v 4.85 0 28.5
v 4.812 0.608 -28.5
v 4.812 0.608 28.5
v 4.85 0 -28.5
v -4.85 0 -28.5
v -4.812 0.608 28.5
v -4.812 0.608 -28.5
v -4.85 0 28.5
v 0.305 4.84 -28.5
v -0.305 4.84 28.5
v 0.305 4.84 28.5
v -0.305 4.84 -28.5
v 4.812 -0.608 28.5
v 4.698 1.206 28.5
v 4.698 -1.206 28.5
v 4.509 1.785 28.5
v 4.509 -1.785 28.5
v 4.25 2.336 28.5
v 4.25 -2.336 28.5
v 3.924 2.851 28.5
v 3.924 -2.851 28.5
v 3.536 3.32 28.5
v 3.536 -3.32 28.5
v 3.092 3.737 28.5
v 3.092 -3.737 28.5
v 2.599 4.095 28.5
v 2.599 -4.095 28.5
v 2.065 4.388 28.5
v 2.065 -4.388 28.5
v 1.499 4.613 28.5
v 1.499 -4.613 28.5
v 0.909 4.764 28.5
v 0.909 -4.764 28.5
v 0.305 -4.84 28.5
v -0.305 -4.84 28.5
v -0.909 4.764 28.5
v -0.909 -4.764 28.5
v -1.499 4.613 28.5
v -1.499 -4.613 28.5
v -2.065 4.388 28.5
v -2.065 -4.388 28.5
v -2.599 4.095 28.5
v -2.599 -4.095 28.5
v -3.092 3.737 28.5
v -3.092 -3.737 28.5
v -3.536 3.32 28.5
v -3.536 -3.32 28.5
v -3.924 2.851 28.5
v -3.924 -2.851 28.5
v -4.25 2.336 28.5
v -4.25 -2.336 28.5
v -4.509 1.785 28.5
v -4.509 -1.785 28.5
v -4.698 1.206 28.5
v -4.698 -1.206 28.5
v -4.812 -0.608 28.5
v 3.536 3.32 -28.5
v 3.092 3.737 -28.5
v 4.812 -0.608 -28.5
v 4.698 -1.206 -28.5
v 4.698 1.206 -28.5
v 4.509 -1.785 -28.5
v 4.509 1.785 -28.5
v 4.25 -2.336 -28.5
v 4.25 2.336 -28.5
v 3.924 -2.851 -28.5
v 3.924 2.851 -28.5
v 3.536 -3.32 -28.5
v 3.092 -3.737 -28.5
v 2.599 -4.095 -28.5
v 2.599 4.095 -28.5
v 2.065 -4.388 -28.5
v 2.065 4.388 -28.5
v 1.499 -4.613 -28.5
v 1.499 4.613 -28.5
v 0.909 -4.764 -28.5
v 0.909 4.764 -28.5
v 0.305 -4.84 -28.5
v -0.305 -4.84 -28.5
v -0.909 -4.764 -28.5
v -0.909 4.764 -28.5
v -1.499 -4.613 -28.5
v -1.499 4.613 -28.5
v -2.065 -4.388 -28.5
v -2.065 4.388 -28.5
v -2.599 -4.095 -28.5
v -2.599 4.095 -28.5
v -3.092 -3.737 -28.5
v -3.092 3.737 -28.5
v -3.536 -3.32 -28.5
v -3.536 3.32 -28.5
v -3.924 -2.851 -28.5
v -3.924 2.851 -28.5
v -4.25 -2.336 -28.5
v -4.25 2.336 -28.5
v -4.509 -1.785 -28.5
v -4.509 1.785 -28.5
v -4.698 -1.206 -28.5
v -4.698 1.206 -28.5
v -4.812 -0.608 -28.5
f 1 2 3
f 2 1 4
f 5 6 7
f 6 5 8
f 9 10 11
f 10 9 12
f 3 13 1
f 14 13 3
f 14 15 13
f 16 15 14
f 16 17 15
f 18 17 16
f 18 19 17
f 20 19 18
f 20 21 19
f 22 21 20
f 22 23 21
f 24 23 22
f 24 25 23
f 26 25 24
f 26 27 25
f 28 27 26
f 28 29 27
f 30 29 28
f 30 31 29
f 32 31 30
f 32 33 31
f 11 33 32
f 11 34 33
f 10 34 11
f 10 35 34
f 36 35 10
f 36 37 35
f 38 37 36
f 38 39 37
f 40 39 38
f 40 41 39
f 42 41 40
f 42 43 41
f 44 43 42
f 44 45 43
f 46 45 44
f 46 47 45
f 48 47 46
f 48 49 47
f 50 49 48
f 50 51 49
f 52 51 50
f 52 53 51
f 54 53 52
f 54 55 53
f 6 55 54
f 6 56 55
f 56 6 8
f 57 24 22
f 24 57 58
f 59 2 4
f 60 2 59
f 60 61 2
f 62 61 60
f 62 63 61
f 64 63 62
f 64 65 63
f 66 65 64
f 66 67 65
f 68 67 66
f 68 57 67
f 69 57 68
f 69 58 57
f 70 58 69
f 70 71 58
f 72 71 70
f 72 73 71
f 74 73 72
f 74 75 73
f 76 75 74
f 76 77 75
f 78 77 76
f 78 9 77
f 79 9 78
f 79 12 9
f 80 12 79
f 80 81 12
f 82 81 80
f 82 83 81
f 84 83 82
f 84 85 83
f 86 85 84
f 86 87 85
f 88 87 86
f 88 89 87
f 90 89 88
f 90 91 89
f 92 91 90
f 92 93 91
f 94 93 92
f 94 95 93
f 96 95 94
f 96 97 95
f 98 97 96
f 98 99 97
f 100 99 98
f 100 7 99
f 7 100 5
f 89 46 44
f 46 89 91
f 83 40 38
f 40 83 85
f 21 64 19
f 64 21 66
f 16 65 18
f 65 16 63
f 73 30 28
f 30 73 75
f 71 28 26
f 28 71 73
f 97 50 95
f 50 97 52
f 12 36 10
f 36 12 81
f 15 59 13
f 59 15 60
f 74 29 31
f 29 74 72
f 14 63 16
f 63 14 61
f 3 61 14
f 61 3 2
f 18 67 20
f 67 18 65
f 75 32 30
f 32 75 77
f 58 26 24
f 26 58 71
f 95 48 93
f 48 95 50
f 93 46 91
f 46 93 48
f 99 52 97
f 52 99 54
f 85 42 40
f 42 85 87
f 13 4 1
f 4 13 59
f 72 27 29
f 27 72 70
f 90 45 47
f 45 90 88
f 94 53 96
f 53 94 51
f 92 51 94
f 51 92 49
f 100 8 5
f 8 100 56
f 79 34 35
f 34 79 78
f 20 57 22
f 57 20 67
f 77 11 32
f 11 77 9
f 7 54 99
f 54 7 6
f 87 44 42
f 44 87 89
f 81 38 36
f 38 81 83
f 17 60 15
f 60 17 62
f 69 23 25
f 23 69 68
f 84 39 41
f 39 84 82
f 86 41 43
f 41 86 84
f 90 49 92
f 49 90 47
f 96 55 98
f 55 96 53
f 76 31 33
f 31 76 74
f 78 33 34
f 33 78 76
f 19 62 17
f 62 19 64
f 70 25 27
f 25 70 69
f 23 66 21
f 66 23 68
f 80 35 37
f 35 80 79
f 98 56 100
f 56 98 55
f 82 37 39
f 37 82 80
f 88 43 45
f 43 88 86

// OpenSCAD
$fn = 50;


difference() {
	union() {
		translate(v = [0, 0, -28.5000000000]) {
			cylinder(h = 57, r = 4.8500000000);
		}
	}
	union() {
		translate(v = [0, 0, -100.0000000000]) {
			cylinder(h = 200, r = 0);
		}
	}
}
